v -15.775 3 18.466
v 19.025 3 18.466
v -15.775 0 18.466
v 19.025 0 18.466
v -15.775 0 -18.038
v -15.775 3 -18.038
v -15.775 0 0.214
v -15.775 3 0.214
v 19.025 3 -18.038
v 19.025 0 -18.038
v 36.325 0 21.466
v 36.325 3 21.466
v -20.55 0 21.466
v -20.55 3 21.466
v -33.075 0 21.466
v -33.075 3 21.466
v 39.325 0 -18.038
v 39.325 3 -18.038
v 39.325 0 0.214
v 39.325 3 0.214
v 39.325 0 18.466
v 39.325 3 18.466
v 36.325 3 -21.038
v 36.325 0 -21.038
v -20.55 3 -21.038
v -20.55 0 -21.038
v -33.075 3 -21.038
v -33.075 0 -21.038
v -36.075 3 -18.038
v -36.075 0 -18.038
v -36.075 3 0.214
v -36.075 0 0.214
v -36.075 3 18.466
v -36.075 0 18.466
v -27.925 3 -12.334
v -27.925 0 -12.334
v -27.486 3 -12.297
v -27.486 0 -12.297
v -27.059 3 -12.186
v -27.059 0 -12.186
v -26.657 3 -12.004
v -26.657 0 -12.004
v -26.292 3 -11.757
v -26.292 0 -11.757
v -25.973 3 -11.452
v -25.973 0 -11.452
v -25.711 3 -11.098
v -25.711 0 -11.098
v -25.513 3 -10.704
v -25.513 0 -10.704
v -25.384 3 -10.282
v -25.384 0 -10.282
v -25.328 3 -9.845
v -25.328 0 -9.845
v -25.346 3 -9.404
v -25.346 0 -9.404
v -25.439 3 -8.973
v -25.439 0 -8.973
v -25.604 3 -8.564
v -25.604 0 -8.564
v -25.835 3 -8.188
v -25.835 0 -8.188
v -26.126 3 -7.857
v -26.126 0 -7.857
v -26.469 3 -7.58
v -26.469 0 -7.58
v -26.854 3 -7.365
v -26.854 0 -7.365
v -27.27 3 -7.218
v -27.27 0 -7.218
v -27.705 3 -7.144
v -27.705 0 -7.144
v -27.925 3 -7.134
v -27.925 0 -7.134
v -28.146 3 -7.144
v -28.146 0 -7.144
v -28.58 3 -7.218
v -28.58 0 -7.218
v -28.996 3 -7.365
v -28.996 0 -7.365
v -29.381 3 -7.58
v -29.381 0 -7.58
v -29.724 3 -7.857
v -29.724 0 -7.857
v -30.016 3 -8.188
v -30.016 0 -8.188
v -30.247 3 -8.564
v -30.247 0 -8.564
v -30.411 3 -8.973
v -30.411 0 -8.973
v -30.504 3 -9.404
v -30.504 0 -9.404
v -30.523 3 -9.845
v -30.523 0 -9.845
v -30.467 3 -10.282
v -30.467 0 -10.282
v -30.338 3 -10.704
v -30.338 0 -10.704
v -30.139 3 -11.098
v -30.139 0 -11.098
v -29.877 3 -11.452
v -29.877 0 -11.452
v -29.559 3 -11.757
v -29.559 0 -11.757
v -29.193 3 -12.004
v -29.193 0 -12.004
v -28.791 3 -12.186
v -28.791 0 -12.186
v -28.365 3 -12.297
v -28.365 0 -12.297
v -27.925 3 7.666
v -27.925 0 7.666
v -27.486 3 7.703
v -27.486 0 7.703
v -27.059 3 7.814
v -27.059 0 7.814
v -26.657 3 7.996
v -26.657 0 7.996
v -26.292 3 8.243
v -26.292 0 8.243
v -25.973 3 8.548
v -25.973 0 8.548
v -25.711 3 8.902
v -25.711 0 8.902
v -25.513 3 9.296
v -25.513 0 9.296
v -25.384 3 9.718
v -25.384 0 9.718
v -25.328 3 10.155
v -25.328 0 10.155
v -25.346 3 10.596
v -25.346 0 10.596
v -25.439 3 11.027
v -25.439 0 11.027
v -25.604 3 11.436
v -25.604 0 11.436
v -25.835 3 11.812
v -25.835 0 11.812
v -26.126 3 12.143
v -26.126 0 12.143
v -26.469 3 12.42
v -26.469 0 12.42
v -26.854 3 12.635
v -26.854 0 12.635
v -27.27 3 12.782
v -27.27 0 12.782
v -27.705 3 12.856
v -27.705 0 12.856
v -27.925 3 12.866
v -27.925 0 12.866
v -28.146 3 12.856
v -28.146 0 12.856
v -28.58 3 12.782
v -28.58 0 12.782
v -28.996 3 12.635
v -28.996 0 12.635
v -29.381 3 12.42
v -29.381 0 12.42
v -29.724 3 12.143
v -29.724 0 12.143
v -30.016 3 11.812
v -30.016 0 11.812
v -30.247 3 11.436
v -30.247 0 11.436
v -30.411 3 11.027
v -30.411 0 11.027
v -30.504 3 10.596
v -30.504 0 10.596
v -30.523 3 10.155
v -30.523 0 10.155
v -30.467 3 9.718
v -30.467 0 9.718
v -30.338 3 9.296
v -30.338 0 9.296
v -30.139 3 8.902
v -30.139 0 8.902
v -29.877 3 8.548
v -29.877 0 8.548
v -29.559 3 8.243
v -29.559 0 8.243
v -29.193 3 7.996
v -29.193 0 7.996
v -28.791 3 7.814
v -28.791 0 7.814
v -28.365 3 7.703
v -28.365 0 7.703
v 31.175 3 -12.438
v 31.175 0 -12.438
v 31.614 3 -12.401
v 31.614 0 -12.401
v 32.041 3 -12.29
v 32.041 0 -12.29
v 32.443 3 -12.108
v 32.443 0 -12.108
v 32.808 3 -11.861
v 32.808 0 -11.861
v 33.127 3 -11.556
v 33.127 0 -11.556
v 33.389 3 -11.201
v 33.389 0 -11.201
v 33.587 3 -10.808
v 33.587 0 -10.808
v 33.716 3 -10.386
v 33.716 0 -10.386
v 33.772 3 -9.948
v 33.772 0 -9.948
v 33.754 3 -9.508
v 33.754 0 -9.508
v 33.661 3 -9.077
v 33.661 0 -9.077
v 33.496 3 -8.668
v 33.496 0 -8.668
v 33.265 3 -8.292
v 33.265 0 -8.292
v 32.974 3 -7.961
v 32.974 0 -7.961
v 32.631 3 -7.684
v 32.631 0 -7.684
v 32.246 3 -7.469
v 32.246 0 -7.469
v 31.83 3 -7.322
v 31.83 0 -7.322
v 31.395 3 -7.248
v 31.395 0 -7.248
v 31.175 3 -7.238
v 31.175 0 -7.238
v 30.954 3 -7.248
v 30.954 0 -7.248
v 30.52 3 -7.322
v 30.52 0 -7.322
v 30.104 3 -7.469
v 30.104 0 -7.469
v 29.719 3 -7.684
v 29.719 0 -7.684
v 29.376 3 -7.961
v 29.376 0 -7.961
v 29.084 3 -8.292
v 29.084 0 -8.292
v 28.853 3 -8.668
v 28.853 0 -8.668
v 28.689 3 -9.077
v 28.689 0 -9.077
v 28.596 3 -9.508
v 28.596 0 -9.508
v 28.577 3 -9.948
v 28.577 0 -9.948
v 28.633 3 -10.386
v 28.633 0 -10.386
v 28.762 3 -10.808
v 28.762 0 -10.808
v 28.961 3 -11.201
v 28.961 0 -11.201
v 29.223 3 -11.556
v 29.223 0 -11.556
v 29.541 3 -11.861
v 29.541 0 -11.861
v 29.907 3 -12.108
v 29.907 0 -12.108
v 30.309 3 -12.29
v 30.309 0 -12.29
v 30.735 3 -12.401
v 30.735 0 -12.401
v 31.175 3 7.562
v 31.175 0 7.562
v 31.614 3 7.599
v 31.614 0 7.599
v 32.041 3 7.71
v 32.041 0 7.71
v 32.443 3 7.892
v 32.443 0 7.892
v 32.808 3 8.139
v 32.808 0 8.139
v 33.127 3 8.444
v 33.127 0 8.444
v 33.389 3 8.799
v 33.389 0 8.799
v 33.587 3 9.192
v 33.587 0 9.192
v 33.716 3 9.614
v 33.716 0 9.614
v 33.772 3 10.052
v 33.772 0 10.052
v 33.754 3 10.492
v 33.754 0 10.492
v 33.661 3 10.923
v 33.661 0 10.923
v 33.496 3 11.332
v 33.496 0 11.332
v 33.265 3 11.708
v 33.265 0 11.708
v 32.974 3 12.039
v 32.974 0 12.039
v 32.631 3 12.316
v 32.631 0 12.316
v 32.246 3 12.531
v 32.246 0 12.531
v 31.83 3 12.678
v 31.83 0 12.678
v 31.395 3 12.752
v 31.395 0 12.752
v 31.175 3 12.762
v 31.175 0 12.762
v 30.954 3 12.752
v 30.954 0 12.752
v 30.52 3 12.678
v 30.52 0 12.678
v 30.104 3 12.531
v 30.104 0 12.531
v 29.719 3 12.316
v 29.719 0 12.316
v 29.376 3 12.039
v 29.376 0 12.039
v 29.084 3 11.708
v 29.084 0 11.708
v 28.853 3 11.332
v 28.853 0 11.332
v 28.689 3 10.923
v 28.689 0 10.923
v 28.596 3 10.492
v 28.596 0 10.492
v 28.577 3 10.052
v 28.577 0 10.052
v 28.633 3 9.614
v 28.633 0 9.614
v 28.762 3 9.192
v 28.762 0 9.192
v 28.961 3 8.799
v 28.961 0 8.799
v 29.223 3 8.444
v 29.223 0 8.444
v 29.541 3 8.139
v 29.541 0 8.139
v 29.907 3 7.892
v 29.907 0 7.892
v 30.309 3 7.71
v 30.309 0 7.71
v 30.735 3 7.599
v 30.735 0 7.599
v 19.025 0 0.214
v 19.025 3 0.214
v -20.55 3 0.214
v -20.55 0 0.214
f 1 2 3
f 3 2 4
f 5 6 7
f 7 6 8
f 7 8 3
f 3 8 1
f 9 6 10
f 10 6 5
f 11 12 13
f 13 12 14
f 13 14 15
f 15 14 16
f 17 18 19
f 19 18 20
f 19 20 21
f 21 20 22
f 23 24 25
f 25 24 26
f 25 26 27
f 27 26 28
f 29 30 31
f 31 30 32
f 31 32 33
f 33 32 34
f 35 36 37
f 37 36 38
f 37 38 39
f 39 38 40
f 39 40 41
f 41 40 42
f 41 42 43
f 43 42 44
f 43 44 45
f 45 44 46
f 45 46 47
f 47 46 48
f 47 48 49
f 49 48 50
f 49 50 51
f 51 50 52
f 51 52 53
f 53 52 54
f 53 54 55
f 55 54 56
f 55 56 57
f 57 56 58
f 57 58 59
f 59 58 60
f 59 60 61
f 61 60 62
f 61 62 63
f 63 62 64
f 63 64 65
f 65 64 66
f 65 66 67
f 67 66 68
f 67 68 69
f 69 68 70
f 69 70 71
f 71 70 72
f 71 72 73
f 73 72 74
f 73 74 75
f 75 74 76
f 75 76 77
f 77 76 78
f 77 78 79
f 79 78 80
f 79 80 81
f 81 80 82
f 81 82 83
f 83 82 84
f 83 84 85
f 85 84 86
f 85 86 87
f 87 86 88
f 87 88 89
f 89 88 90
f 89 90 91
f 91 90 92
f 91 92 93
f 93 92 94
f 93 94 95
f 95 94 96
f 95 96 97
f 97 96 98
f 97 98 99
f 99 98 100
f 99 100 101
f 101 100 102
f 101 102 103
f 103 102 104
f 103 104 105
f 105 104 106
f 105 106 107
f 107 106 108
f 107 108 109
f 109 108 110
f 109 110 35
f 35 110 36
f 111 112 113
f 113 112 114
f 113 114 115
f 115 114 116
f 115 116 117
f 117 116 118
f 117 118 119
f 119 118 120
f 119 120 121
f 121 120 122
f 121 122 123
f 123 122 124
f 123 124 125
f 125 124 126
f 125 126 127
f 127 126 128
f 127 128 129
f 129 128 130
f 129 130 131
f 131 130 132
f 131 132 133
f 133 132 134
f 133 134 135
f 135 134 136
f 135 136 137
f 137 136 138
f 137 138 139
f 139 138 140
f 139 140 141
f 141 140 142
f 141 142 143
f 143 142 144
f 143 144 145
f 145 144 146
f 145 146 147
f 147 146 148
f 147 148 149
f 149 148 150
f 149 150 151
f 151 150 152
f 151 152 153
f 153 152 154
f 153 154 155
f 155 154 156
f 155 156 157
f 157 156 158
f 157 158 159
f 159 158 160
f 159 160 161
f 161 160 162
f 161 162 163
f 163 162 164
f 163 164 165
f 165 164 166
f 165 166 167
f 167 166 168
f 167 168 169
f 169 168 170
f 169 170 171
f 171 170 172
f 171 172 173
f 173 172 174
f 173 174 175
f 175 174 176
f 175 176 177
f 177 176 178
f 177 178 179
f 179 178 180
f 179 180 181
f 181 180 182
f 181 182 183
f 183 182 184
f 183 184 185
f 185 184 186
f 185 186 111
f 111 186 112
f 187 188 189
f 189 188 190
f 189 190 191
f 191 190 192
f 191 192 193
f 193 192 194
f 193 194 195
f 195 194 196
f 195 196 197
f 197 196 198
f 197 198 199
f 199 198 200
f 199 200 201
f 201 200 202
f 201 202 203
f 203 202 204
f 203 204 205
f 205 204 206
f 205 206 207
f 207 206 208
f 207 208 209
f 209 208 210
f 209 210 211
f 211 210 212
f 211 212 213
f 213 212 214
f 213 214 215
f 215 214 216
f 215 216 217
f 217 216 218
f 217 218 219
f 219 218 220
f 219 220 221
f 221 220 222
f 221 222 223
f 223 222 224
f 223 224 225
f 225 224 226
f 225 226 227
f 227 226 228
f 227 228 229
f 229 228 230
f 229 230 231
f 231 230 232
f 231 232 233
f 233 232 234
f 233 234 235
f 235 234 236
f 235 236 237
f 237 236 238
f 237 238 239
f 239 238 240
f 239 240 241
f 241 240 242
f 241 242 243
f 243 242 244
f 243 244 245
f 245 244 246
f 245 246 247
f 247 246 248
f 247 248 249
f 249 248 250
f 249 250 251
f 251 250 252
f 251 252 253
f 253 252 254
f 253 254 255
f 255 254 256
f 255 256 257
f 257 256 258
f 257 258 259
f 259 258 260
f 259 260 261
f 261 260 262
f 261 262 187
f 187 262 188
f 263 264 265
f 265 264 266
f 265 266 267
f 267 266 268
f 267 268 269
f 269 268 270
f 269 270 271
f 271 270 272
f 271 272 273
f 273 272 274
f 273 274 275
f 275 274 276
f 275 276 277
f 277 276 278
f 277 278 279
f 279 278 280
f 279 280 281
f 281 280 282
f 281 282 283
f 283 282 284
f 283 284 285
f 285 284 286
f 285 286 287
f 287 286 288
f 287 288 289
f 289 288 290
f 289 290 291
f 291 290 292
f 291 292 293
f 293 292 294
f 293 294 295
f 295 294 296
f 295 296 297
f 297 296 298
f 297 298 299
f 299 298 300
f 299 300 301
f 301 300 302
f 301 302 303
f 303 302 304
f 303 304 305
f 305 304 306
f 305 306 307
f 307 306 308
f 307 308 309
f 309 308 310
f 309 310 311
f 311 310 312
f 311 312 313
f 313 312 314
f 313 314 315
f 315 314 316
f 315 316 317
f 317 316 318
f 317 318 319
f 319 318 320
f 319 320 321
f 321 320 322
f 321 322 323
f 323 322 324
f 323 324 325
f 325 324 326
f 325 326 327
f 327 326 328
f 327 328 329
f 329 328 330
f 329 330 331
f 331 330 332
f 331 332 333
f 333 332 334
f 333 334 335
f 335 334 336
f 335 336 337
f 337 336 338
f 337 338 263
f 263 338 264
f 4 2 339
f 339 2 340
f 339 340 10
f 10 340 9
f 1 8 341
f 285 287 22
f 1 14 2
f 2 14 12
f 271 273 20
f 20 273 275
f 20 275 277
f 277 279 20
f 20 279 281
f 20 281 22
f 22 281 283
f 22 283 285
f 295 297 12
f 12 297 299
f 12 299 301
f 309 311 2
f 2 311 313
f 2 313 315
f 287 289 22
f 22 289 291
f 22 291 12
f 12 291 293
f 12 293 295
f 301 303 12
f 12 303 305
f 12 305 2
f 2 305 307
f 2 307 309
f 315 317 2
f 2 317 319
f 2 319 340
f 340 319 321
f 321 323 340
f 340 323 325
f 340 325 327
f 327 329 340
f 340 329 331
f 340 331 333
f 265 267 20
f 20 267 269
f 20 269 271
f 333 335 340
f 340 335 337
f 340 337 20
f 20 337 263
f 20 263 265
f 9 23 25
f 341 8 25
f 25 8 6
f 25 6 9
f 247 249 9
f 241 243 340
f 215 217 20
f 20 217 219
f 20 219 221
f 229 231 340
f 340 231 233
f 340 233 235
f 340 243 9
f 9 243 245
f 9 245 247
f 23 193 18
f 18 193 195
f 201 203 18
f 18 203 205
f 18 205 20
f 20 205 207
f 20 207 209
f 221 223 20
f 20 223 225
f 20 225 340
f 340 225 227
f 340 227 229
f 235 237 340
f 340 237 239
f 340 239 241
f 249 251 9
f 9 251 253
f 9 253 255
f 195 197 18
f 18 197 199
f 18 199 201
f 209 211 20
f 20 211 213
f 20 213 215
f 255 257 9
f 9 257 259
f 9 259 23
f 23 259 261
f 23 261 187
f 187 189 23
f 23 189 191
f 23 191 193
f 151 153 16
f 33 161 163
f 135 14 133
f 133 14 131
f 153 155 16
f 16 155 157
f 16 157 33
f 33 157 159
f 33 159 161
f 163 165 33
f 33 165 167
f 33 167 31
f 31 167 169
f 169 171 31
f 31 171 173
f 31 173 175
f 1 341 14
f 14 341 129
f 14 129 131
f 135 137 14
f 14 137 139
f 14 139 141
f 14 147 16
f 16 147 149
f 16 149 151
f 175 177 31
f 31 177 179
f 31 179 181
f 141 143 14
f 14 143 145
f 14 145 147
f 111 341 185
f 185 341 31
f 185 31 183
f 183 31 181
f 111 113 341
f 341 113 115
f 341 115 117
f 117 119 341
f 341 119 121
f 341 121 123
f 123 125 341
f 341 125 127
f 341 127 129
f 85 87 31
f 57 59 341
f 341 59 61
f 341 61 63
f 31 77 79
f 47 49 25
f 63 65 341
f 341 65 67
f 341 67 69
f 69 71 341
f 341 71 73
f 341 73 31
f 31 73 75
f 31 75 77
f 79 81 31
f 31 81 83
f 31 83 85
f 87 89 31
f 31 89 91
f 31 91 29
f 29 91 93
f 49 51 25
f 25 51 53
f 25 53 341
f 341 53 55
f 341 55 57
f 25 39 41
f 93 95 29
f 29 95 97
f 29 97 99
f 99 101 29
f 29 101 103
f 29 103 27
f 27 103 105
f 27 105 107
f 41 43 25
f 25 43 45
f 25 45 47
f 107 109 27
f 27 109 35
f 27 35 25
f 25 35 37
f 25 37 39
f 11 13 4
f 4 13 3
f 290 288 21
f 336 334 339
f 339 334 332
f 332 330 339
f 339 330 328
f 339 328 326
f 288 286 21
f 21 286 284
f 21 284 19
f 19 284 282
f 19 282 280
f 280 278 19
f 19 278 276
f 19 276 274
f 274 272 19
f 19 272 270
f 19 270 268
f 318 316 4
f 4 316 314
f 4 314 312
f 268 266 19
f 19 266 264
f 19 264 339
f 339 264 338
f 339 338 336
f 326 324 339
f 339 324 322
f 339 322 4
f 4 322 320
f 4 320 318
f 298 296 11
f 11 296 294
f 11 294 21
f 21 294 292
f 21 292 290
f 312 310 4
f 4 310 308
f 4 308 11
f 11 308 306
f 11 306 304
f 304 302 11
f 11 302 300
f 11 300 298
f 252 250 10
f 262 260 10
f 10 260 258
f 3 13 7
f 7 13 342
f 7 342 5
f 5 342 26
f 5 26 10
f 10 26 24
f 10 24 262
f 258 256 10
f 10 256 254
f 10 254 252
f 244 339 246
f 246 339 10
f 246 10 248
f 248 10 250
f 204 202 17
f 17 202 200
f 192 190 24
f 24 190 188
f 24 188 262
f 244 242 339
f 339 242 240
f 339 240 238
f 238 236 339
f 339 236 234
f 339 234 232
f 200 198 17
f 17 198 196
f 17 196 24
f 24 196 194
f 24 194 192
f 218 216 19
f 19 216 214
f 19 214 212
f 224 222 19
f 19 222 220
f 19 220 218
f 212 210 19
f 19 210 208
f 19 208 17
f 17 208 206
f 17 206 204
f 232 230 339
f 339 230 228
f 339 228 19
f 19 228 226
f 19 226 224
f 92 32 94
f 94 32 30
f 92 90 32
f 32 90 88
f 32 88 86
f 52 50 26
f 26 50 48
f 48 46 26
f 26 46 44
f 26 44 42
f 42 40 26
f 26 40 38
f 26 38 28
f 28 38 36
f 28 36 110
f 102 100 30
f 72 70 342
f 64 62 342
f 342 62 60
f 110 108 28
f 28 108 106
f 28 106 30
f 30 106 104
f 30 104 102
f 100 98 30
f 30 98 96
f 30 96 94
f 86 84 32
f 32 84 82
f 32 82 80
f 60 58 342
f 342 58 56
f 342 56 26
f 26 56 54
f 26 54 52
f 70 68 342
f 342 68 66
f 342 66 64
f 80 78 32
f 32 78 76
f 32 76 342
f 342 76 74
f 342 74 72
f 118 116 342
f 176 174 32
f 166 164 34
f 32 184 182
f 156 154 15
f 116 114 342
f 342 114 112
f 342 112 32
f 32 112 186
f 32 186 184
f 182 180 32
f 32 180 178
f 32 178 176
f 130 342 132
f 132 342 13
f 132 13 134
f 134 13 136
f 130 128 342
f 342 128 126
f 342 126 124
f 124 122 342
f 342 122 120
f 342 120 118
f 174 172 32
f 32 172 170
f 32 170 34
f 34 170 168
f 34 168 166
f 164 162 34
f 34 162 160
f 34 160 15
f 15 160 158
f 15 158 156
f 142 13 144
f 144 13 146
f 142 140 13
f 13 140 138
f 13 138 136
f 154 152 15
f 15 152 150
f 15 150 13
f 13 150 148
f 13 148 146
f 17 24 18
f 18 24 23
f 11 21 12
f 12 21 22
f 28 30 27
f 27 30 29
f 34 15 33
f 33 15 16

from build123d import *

# Parameters (mm, degrees)
SKETCH1_R           = 2.6
SKETCH1_W           = 34.8
SKETCH1_H           = 36.503761473
BOSS_EXTRUDE1_DEPTH = 3
CHAMFER1_SIZE       = 3


with BuildPart() as part:
    # Sketch1 → Boss-Extrude1 (new body)
    with BuildSketch(Plane(origin=(0, 0, 0), x_dir=(1, 0, 0), z_dir=(0, 1, 0))):
        Polygon((-36.075215726, -21.465620287), (-18.775215726, -21.465620287), (22.024784274, -21.465620287), (39.324784274, -21.465620287), (39.324784274, 21.038141186), (22.024784274, 21.038141186), (-18.775215726, 21.038141186), (-36.075215726, 21.038141186), align=None)
        with Locations((-27.925215726, -10.265620287)):
            Circle(SKETCH1_R, mode=Mode.SUBTRACT)
        with Locations((31.174784274, -10.161858814)):
            Circle(SKETCH1_R, mode=Mode.SUBTRACT)
        with Locations((-27.925215726, 9.734379713)):
            Circle(SKETCH1_R, mode=Mode.SUBTRACT)
        with Locations((1.624784274, -0.21373955)):
            Rectangle(SKETCH1_W, SKETCH1_H, mode=Mode.SUBTRACT)
        with Locations((31.174784274, 9.838141186)):
            Circle(SKETCH1_R, mode=Mode.SUBTRACT)
    extrude(amount=BOSS_EXTRUDE1_DEPTH)

    # Chamfer1
    chamfer1_edges = [part.edges().sort_by_distance(p)[0] for p in [
        (39.324784274, 1.5, -21.038141186),
        (39.324784274, 1.5, 21.465620287),
        (-36.075215726, 1.5, -21.038141186),
        (-36.075215726, 1.5, 21.465620287),
    ]]
    chamfer(chamfer1_edges, length=CHAMFER1_SIZE)


solid = part.part
